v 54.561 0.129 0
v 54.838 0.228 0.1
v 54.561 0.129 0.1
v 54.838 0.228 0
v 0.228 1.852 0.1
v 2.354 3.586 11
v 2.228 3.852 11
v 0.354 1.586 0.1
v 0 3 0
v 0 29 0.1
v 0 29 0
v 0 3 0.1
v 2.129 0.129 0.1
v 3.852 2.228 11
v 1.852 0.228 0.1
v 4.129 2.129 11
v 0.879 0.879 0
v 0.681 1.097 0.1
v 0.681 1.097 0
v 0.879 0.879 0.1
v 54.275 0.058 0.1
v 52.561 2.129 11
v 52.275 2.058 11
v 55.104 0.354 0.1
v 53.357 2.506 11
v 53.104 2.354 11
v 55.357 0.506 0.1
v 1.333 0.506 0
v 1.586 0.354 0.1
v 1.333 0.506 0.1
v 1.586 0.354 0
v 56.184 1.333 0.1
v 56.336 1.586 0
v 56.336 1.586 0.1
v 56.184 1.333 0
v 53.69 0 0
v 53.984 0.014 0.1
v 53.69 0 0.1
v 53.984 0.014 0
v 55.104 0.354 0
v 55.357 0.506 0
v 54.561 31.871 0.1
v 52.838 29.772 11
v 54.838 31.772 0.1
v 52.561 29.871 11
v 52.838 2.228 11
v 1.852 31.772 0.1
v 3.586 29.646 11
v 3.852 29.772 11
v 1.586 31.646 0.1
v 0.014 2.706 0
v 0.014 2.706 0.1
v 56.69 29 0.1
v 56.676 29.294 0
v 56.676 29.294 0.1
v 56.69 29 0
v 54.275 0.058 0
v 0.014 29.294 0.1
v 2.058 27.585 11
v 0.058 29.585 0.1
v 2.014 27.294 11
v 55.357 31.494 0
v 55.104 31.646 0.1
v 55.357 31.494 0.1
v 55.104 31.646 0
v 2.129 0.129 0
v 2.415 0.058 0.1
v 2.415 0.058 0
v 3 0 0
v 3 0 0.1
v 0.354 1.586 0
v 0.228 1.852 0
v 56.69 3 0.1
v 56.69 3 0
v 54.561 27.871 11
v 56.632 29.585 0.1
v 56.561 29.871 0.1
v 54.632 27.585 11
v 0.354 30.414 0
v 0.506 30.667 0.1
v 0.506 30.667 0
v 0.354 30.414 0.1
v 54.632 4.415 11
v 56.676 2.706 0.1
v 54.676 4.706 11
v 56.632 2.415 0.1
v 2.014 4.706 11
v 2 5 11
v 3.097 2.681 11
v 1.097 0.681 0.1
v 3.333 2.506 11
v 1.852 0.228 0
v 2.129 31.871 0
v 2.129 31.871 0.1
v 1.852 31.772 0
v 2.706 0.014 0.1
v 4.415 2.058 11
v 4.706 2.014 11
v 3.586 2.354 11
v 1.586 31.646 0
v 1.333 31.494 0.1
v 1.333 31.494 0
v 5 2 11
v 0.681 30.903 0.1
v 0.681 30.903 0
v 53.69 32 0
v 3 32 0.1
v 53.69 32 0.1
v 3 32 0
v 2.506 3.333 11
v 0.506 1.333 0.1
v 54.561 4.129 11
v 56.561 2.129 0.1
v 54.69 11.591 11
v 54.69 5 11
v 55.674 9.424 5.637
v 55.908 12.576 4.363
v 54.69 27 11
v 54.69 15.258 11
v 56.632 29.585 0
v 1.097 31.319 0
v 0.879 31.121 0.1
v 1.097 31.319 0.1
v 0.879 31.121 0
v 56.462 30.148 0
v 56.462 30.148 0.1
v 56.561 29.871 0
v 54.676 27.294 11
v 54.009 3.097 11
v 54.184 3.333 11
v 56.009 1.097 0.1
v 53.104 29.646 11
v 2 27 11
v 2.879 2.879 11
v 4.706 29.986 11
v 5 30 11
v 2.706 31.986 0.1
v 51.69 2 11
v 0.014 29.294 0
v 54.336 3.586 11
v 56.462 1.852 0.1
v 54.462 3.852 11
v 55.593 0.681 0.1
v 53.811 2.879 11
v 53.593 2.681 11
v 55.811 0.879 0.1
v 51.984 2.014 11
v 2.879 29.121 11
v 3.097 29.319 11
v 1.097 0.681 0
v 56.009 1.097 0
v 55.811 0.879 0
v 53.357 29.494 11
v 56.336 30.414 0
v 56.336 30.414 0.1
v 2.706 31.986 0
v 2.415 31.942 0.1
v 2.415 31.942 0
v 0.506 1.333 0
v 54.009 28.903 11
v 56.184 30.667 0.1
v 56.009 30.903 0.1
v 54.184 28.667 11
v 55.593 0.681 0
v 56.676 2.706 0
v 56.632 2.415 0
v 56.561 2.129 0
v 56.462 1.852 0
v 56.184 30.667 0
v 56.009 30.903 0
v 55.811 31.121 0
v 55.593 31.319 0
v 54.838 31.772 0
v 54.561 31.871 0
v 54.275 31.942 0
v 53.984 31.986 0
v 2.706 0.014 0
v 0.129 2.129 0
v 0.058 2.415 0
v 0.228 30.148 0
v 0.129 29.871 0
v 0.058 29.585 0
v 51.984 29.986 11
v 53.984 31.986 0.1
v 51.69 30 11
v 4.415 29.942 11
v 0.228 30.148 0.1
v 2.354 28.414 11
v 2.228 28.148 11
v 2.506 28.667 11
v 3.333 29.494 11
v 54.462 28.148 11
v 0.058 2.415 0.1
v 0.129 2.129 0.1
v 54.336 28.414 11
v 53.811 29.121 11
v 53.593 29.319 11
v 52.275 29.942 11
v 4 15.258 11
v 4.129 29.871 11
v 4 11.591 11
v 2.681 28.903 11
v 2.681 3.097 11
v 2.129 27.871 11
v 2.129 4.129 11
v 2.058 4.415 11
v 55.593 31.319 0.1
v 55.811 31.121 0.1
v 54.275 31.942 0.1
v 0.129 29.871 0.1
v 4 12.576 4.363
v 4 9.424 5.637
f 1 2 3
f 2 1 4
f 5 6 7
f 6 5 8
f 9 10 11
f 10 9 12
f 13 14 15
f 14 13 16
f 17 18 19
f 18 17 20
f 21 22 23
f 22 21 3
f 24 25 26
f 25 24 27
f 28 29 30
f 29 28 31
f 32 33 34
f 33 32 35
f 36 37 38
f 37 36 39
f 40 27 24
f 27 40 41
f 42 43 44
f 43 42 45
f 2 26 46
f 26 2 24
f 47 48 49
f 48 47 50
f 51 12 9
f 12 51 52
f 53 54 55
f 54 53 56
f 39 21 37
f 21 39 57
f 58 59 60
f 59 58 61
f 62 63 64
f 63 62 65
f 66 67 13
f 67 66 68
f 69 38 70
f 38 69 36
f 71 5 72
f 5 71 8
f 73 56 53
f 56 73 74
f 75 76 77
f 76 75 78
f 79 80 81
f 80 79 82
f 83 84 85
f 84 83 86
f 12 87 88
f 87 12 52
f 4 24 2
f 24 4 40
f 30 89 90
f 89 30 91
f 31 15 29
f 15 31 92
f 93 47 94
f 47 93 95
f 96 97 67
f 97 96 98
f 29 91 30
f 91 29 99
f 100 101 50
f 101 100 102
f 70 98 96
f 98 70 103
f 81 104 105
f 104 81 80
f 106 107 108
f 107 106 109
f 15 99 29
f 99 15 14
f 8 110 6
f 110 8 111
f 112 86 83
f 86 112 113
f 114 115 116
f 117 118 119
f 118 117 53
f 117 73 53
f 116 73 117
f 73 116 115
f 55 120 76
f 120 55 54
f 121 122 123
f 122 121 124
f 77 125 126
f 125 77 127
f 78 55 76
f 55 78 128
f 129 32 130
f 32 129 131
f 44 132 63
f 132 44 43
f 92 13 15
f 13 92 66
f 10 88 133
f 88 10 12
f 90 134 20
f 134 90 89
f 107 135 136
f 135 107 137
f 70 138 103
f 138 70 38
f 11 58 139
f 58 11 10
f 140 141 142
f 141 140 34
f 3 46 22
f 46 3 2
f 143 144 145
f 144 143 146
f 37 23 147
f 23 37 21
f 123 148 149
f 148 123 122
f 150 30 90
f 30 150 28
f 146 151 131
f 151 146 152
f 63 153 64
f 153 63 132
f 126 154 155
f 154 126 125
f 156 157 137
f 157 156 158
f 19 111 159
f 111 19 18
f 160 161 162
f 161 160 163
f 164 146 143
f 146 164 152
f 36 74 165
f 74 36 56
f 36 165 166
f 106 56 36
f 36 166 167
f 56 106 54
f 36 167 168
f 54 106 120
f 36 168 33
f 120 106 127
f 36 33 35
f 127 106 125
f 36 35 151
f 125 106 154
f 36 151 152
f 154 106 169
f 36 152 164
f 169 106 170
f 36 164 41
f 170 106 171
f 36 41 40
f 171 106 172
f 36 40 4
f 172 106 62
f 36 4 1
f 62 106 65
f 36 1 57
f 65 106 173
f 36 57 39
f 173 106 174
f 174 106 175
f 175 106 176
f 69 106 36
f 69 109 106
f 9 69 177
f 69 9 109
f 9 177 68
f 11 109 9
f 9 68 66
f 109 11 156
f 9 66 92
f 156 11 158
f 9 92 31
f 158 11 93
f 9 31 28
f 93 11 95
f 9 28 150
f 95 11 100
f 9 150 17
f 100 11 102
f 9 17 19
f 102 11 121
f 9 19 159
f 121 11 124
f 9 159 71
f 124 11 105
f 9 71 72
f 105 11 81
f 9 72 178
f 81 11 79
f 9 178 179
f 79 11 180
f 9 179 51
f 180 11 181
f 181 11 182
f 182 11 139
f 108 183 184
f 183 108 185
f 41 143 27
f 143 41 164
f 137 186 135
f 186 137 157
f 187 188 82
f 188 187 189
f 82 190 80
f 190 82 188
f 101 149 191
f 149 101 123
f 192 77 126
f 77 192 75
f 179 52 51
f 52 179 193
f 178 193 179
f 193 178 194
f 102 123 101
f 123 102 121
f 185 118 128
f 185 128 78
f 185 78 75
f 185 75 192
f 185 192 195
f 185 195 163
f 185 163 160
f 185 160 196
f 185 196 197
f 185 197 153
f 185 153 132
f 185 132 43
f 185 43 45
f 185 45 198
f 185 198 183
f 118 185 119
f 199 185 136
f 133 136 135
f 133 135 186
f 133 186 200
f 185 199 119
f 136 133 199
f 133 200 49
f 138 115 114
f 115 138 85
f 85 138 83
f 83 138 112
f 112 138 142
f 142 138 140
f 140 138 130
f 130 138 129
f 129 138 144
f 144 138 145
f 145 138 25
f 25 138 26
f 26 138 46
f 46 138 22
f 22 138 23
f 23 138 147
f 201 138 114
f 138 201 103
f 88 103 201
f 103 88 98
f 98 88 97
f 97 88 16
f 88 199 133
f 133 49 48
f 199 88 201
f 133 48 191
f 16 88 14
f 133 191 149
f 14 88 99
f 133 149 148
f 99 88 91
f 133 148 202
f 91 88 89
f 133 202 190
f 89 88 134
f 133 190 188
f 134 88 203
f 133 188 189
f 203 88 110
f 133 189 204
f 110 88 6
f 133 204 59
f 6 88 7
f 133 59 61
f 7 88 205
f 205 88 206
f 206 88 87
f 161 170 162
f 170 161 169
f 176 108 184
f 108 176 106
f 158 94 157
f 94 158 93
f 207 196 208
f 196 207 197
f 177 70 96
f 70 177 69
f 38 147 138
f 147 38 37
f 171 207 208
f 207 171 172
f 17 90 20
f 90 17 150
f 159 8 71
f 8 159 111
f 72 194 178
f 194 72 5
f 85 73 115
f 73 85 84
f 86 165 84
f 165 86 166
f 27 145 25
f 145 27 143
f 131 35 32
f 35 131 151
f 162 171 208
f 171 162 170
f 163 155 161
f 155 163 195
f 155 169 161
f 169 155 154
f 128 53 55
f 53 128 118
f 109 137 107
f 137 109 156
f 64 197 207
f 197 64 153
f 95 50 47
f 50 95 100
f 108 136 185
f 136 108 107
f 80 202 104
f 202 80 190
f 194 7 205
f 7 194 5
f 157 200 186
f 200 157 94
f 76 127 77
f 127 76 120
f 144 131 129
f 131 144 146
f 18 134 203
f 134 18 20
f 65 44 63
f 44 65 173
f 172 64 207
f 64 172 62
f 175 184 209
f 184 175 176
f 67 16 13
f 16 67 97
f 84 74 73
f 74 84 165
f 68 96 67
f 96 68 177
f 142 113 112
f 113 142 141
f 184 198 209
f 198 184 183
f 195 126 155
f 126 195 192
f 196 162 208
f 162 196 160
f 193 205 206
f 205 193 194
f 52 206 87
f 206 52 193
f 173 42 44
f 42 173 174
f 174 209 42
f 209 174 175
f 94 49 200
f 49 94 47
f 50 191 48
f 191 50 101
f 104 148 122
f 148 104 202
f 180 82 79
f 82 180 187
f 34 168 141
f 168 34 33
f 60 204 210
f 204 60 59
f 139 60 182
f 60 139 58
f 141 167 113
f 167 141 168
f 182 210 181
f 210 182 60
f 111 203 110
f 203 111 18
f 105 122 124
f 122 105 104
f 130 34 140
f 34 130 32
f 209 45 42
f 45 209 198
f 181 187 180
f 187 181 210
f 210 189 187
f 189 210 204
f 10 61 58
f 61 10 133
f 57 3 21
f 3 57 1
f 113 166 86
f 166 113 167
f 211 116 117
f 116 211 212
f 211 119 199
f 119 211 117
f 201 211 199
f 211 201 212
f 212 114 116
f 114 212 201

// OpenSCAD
// ============================================================================
//  T-Display desk stand  —  parametric tilted cradle
//  For the LilyGO T-Display (1.14" ST7789, ESP32) and dimensional clones.
//
//  The board's bottom long edge drops into an angled slot and leans back so the
//  screen faces up toward you on a desk. The right end is left open for the
//  USB-C cable. Designed to print support-free on a Bambu Lab A1 (flat side down).
//
//  Units: millimeters.
// ============================================================================

/* ---------- measured board facts (confirmed) ---------- */
board_len   = 51.49;   // long edge — sits along the slot   [from LilyGO drawing]
board_thick = 1.8;     // PCB thickness used for the slot. Bare PCB ~1.6mm; this
                       // leaves a little room for parts near the bottom edge.

/* ---------- fit & feel — these are the knobs to tweak ---------- */
tilt_deg       = 22;   // lean-back angle from vertical (bigger = screen faces up more)
slot_clearance = 1.6;  // extra slot WIDTH: easy insert + clone tolerance
side_clearance = 1.2;  // extra slot LENGTH so the board drops in without forcing
insert_depth   = 6;    // how deep the bottom edge sits in the slot (grip vs. screen coverage)

/* ---------- stand body ---------- */
left_wall   = 4;       // solid wall on the LEFT end (acts as a locating stop)
base_depth  = 32;      // front-to-back footprint (more = more stable vs. the lean)
base_height = 11;      // height of the block the slot is cut into
corner_r    = 3;       // rounded vertical corners (looks + comfort)
taper       = 2;       // top is inset this much all around (a gentle wedge look)

/* ---------- derived ---------- */
slot_w   = board_thick + slot_clearance;   // slot thickness (front-to-back)
slot_len = board_len + side_clearance;     // slot length (left-to-right)
body_w   = left_wall + slot_len;           // RIGHT end deliberately left open for USB-C
floor_z  = base_height - insert_depth;     // board rests this high above the desk
slot_y   = 11;                             // slot position from the front face

$fn = 64;

// Rounded rectangle (footprint).
module rrect(w, d, r) {
    hull() {
        translate([r,     r    ]) circle(r);
        translate([w - r, r    ]) circle(r);
        translate([r,     d - r]) circle(r);
        translate([w - r, d - r]) circle(r);
    }
}

// Gently tapered block (bottom full size, top inset by `taper`) — prints flat,
// overhang-free, and looks like a stand rather than a brick.
module base() {
    hull() {
        linear_extrude(height = 0.1) rrect(body_w, base_depth, corner_r);
        translate([taper, taper, base_height - 0.1])
            linear_extrude(height = 0.1) rrect(body_w - 2*taper, base_depth - 2*taper, corner_r);
    }
}

// The angled slot. Leans back (top toward the rear) so the screen faces up.
module slot_cut() {
    slab_h = base_height + insert_depth + 30;        // tall enough to cut clear through the top
    translate([left_wall, slot_y, floor_z])          // pocket bottom sits at floor_z
        rotate([-tilt_deg, 0, 0])                    // lean the slot back
            translate([0, -slot_w / 2, 0])
                cube([slot_len + 12, slot_w, slab_h]);  // +12 opens the RIGHT (USB-C) end
}

difference() {
    base();
    slot_cut();
}

/* ---------- preview only (NOT printed) ----------
   Render with:  openscad -D show_board=true ...
   Draws the board + a screen rectangle sitting in the slot so you can see fit. */
show_board   = false;
board_h_vis  = 25.09;   // board short edge (height as it leans)

module board_ghost() {
    translate([left_wall + side_clearance/2, slot_y, floor_z])
        rotate([-tilt_deg, 0, 0]) {
            color([0.12, 0.12, 0.13])                              // dark PCB
                translate([0, -board_thick/2, 0])
                    cube([board_len, board_thick, board_h_vis]);
            color([0.72, 0.47, 0.34])                              // screen (Claude clay)
                translate([3, -board_thick/2 - 0.45, 5.5])
                    cube([board_len - 6, 0.5, 15]);
        }
}

if (show_board) board_ghost();
